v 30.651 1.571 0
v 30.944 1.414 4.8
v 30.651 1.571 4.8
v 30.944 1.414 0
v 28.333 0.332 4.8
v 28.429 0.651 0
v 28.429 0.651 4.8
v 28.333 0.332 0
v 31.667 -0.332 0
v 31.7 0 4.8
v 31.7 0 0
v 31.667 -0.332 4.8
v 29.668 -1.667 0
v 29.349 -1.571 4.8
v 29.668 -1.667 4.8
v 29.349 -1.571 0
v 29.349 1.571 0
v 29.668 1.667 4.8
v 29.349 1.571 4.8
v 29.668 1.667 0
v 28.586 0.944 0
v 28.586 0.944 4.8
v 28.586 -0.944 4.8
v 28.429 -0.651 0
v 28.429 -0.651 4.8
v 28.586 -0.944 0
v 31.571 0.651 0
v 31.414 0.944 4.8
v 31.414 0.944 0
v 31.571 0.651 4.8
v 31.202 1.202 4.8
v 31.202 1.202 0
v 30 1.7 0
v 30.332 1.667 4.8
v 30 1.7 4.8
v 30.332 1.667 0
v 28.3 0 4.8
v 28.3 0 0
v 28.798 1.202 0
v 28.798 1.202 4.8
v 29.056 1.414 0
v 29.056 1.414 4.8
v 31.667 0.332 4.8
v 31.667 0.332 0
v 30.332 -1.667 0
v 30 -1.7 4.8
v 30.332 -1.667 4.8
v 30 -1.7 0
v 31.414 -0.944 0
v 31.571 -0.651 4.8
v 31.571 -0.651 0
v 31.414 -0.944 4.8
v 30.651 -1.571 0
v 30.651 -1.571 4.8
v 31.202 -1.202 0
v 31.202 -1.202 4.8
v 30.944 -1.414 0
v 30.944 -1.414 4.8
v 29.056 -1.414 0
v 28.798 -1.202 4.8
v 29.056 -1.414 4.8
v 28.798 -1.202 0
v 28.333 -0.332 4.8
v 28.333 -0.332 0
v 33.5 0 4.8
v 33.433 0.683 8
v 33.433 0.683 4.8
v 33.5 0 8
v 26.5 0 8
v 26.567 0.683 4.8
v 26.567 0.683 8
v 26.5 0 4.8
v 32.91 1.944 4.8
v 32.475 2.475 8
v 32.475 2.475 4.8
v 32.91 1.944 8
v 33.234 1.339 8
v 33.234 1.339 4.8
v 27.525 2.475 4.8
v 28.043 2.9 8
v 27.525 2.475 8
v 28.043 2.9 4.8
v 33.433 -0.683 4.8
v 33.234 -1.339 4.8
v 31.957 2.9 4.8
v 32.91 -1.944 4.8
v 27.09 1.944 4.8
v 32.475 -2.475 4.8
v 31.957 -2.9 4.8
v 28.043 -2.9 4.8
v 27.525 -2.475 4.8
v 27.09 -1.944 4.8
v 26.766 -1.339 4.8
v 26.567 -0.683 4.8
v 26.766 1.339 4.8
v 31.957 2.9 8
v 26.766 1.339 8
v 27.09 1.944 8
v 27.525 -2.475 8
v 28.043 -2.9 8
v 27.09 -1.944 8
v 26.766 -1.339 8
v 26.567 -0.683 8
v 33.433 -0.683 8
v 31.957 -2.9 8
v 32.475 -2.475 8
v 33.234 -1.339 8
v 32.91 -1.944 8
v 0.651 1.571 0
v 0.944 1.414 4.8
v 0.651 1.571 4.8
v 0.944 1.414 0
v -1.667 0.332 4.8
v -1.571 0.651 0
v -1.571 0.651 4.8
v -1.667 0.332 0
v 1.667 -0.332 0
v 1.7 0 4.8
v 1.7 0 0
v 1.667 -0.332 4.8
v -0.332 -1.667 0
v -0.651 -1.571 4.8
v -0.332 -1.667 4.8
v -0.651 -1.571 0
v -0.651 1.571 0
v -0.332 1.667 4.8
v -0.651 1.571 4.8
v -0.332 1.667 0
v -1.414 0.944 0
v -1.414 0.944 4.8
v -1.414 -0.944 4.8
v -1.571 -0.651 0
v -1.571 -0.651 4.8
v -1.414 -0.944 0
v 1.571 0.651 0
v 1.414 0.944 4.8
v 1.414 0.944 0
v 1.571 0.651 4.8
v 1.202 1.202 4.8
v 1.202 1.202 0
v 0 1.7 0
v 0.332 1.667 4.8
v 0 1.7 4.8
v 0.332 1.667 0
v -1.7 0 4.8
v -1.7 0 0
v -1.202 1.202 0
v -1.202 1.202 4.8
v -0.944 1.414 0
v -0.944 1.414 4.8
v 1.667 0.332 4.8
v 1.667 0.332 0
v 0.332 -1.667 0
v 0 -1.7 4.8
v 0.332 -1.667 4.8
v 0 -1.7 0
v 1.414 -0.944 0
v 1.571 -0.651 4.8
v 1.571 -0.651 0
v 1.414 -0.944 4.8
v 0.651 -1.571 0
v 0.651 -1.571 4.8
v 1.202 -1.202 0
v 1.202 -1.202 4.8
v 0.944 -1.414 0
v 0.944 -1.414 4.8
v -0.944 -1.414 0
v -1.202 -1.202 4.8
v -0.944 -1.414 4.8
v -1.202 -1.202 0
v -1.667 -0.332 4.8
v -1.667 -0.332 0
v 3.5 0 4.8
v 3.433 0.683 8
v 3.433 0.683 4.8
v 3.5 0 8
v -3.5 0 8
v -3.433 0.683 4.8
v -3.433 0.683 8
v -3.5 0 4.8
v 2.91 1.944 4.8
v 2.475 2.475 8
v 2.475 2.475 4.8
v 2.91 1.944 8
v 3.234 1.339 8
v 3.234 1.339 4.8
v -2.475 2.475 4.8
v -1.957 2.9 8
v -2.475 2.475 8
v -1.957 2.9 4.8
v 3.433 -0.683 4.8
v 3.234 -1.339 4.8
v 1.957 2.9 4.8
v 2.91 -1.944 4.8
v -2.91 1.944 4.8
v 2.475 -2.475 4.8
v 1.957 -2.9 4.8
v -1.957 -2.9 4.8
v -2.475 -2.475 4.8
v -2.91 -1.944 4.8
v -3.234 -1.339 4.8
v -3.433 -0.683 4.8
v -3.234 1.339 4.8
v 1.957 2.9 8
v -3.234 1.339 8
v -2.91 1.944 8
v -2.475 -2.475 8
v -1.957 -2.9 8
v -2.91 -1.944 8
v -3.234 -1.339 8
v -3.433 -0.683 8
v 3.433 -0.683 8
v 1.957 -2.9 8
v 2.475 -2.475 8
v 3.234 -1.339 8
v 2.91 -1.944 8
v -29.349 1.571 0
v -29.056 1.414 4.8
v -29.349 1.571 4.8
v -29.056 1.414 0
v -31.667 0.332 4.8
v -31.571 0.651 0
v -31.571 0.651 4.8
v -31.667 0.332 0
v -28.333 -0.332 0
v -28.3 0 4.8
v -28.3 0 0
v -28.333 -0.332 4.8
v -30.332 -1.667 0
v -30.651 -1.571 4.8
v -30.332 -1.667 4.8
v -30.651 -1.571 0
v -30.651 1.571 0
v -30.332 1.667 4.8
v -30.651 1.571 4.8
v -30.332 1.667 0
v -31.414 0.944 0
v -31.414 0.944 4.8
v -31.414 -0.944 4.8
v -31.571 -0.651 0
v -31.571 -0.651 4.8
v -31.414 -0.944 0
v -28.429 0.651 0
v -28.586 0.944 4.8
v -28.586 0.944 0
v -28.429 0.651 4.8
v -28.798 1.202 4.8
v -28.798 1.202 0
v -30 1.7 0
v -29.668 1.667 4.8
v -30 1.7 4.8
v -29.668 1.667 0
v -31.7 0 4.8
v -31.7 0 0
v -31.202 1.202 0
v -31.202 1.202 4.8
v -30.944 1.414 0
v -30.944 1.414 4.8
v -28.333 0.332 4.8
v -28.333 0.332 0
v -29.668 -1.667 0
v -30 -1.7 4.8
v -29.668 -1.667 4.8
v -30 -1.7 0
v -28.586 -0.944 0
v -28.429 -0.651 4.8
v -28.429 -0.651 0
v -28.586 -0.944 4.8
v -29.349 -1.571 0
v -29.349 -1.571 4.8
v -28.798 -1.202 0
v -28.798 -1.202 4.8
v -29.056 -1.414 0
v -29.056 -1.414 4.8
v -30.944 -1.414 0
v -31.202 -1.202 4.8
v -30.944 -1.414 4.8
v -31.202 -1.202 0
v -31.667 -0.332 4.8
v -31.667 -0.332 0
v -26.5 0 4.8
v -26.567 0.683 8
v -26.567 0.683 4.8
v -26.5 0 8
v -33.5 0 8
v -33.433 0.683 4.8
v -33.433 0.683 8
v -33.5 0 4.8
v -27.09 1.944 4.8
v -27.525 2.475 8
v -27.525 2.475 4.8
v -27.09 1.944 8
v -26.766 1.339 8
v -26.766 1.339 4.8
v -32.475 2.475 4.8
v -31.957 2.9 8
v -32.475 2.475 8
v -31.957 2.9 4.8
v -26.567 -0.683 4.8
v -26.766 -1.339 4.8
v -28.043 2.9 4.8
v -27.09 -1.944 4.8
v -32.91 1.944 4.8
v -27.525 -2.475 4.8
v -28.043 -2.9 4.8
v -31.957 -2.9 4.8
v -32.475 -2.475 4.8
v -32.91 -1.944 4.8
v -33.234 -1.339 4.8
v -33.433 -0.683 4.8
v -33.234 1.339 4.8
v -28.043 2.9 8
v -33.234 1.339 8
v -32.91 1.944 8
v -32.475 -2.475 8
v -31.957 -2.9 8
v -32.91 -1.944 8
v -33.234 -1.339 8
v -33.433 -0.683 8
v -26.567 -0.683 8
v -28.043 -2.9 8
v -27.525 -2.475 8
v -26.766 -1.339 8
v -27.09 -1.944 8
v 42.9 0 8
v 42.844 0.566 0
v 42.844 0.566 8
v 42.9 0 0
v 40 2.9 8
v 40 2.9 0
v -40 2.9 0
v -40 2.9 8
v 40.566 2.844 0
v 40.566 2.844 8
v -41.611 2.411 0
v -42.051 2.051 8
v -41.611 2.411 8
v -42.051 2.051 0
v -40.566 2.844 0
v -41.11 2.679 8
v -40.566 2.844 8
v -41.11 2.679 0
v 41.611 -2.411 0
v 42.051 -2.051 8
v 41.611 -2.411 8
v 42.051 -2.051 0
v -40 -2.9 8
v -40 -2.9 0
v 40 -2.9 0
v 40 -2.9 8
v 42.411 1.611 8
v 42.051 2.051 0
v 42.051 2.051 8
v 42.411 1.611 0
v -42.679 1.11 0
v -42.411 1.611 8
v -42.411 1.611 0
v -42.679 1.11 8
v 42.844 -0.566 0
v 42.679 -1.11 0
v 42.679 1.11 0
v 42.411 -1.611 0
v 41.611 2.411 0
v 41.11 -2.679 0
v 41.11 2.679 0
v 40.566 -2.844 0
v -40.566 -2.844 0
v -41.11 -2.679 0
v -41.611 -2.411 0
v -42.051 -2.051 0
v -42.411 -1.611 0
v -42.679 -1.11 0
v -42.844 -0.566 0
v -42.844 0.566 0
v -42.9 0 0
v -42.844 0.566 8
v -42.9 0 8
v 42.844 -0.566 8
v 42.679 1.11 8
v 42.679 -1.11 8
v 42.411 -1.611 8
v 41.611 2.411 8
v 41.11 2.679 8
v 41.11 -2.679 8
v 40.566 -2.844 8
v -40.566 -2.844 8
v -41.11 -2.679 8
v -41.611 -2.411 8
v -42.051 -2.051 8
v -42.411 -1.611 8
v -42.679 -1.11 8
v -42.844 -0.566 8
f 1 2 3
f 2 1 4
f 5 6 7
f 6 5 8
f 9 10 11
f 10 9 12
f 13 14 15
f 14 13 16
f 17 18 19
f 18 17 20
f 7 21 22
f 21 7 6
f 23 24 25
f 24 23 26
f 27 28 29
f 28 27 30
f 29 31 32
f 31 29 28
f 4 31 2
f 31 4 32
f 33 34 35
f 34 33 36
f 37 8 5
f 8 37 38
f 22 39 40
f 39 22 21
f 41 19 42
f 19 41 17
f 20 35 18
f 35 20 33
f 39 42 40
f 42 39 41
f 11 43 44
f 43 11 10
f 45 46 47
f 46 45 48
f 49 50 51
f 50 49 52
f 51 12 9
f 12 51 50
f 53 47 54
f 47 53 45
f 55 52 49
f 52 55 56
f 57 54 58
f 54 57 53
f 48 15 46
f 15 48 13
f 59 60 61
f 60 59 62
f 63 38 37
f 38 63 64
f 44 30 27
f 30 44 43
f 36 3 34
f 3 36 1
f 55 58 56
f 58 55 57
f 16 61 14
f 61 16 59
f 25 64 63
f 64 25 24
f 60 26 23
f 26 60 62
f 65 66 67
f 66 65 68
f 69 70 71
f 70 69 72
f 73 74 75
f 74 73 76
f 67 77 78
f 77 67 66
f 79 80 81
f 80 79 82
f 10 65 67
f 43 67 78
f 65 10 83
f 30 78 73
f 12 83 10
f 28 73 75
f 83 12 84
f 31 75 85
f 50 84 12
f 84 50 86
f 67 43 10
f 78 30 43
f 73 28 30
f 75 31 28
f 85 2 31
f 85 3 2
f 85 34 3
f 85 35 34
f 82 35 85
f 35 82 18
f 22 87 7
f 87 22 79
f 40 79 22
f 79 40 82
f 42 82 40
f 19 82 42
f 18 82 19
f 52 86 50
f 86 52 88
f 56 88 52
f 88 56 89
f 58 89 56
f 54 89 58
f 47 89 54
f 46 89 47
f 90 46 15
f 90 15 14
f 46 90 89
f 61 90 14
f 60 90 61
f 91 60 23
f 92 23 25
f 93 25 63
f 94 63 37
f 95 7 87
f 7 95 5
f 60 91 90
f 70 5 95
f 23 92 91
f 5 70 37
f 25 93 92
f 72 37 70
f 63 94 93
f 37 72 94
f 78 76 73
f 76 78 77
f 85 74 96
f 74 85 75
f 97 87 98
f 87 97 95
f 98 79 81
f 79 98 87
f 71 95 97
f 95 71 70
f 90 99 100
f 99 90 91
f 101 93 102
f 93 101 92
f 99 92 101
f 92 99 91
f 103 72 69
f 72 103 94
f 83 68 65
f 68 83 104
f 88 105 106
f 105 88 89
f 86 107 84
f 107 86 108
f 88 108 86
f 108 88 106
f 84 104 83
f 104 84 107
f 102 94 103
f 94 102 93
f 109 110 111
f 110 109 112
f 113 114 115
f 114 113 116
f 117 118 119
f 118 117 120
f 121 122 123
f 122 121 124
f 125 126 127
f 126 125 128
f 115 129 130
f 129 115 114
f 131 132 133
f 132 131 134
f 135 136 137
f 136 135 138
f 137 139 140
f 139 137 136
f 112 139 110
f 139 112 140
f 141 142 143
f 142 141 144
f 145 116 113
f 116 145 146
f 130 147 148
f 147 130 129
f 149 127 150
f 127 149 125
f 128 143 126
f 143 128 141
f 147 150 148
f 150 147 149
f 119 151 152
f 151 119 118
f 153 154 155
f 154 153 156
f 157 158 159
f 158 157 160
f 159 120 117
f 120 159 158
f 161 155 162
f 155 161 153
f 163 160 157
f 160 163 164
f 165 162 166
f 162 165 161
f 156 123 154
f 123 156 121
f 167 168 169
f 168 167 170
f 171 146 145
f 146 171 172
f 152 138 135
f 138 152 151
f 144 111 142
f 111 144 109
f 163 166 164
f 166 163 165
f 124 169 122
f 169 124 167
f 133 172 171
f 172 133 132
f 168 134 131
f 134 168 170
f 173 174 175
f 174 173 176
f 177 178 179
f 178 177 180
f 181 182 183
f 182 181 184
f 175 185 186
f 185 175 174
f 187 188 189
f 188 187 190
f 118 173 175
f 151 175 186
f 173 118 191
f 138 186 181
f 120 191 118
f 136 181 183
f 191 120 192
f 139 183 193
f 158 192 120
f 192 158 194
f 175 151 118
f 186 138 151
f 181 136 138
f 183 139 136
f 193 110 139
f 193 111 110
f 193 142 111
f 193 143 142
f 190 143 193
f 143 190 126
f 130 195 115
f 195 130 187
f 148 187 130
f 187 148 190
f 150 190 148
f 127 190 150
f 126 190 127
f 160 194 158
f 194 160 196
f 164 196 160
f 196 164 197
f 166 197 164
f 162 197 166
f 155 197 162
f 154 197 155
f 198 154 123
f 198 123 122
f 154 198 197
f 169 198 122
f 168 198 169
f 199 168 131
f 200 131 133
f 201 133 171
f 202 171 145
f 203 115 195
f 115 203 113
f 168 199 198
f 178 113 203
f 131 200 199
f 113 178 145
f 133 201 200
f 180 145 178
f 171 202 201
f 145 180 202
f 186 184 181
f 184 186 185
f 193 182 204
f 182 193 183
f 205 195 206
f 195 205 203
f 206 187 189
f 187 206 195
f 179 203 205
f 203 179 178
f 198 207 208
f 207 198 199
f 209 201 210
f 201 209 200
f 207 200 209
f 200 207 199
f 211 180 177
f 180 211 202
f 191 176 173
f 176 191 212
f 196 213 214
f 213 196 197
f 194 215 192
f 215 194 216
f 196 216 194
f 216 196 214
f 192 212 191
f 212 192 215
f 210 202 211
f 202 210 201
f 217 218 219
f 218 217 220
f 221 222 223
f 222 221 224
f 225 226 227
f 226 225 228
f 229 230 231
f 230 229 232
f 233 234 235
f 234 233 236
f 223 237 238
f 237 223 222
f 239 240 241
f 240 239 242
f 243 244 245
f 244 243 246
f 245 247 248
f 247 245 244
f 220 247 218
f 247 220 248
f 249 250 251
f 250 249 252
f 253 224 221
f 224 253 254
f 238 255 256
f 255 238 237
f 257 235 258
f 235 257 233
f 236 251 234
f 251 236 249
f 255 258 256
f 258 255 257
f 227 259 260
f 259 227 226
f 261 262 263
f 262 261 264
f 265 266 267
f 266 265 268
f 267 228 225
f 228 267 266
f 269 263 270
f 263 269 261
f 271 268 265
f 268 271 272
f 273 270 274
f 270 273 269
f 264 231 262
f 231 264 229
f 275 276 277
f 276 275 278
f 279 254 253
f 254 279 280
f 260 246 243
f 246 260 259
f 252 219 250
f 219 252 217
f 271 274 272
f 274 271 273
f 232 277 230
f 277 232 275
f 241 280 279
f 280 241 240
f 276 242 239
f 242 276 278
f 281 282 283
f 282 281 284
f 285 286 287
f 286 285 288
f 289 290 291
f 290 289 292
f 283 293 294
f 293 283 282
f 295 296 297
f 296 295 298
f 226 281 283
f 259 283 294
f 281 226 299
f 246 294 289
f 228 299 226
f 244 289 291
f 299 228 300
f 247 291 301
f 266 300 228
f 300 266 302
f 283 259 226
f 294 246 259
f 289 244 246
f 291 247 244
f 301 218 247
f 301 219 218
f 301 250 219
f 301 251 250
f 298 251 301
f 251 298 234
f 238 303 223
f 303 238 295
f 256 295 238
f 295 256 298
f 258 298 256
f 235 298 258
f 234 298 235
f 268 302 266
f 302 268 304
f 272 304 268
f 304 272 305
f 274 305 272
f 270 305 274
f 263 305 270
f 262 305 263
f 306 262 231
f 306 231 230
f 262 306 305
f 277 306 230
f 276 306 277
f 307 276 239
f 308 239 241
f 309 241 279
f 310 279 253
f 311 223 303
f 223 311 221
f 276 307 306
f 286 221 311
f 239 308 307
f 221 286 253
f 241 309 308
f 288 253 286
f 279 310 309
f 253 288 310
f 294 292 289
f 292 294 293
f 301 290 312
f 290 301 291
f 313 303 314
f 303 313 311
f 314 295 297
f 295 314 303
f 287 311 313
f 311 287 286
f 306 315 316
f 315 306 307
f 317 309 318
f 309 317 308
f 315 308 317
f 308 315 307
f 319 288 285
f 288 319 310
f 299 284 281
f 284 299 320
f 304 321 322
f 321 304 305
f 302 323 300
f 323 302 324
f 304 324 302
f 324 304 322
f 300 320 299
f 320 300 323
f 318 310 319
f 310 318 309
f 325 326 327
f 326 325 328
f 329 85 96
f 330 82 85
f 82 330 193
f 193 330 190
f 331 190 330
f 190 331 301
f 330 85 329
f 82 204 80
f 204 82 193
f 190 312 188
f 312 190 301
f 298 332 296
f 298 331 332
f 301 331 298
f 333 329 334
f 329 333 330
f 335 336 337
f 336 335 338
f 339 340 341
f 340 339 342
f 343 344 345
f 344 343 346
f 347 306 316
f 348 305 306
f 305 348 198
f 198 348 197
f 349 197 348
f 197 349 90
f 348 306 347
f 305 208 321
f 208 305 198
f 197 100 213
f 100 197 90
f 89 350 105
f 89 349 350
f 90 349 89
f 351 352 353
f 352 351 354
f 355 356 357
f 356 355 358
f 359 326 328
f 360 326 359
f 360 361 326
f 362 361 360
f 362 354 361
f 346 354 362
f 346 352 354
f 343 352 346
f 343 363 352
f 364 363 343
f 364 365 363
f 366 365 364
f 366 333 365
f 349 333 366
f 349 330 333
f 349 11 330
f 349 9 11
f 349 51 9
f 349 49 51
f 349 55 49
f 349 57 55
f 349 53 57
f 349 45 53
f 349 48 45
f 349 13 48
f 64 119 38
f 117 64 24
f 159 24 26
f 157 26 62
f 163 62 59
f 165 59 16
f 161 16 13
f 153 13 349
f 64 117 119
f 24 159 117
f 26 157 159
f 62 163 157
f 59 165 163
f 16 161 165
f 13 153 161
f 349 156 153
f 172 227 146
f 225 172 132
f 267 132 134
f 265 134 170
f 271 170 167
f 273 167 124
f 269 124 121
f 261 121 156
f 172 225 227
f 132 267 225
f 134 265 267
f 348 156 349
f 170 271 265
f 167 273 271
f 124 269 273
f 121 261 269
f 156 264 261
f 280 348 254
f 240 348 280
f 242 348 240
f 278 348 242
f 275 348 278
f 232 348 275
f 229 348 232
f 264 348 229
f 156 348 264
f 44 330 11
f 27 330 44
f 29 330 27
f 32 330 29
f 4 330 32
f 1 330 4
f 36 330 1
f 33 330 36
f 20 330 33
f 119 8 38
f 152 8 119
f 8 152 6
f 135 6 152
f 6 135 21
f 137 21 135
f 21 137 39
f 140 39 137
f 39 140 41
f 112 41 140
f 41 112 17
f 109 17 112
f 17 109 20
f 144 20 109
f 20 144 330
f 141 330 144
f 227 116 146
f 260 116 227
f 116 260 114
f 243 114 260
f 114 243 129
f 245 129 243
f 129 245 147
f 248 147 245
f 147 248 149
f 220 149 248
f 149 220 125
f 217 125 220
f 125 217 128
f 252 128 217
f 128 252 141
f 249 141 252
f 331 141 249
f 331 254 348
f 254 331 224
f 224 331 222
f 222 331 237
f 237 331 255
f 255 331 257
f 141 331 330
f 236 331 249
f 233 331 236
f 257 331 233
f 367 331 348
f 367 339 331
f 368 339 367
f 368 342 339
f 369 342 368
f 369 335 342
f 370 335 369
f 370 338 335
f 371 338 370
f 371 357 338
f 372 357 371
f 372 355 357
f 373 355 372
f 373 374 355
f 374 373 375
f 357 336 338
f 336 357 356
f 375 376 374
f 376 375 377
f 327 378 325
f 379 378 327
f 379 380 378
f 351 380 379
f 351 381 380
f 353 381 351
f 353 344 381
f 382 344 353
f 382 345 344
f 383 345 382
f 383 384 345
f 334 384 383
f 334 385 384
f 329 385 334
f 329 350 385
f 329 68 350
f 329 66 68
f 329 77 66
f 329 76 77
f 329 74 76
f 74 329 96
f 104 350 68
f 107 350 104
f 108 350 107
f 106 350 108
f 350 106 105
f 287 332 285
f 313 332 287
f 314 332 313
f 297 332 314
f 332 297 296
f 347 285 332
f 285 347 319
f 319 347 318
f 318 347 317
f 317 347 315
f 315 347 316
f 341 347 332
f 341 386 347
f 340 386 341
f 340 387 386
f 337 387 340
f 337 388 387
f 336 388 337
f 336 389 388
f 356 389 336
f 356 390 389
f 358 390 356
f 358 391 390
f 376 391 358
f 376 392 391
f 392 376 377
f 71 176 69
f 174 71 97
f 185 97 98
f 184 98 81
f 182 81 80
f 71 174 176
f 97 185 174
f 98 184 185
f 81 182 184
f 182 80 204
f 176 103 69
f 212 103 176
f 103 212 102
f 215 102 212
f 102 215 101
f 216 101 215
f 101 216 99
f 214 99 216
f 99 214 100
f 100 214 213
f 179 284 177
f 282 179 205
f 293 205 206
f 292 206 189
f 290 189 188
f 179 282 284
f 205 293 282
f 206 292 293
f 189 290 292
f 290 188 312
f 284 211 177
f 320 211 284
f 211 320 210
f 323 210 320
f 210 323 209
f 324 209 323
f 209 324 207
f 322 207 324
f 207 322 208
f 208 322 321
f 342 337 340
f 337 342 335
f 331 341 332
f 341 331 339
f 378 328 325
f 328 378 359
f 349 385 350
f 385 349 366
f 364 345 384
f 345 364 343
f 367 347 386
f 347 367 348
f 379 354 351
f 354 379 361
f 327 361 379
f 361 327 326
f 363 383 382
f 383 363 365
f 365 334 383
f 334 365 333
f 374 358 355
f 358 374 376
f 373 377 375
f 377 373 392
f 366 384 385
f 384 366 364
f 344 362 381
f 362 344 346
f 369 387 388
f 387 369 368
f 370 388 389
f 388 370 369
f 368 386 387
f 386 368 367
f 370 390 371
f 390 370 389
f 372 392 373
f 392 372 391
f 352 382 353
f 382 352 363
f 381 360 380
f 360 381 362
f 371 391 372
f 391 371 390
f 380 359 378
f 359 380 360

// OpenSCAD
$fn = 32;

base_rad = 5.8/2;
base_length = 80;
base_height = 8;

screw_head_rad = 7/2;
screw_head_height = 3.4; 
screw_m3_rad = 3.4/2;



difference() {
	hull() {
		translate([base_length/2,0,0]) cylinder(r=base_rad,base_height);
		translate([-base_length/2,0,0]) cylinder(r=base_rad,base_height);	
	}	

	translate([base_length/2-10,0,base_height-3.2]) m3screw(10);
	translate([0,0,base_height-3.2]) m3screw(10);
	translate([-base_length/2+10,0,base_height-3.2]) m3screw(10);
}


module m3screw(screw_length) {
	translate([0,0,-screw_length]) cylinder(r=screw_m3_rad,screw_length+0.1);
	cylinder(r=screw_head_rad,screw_head_height);
}
